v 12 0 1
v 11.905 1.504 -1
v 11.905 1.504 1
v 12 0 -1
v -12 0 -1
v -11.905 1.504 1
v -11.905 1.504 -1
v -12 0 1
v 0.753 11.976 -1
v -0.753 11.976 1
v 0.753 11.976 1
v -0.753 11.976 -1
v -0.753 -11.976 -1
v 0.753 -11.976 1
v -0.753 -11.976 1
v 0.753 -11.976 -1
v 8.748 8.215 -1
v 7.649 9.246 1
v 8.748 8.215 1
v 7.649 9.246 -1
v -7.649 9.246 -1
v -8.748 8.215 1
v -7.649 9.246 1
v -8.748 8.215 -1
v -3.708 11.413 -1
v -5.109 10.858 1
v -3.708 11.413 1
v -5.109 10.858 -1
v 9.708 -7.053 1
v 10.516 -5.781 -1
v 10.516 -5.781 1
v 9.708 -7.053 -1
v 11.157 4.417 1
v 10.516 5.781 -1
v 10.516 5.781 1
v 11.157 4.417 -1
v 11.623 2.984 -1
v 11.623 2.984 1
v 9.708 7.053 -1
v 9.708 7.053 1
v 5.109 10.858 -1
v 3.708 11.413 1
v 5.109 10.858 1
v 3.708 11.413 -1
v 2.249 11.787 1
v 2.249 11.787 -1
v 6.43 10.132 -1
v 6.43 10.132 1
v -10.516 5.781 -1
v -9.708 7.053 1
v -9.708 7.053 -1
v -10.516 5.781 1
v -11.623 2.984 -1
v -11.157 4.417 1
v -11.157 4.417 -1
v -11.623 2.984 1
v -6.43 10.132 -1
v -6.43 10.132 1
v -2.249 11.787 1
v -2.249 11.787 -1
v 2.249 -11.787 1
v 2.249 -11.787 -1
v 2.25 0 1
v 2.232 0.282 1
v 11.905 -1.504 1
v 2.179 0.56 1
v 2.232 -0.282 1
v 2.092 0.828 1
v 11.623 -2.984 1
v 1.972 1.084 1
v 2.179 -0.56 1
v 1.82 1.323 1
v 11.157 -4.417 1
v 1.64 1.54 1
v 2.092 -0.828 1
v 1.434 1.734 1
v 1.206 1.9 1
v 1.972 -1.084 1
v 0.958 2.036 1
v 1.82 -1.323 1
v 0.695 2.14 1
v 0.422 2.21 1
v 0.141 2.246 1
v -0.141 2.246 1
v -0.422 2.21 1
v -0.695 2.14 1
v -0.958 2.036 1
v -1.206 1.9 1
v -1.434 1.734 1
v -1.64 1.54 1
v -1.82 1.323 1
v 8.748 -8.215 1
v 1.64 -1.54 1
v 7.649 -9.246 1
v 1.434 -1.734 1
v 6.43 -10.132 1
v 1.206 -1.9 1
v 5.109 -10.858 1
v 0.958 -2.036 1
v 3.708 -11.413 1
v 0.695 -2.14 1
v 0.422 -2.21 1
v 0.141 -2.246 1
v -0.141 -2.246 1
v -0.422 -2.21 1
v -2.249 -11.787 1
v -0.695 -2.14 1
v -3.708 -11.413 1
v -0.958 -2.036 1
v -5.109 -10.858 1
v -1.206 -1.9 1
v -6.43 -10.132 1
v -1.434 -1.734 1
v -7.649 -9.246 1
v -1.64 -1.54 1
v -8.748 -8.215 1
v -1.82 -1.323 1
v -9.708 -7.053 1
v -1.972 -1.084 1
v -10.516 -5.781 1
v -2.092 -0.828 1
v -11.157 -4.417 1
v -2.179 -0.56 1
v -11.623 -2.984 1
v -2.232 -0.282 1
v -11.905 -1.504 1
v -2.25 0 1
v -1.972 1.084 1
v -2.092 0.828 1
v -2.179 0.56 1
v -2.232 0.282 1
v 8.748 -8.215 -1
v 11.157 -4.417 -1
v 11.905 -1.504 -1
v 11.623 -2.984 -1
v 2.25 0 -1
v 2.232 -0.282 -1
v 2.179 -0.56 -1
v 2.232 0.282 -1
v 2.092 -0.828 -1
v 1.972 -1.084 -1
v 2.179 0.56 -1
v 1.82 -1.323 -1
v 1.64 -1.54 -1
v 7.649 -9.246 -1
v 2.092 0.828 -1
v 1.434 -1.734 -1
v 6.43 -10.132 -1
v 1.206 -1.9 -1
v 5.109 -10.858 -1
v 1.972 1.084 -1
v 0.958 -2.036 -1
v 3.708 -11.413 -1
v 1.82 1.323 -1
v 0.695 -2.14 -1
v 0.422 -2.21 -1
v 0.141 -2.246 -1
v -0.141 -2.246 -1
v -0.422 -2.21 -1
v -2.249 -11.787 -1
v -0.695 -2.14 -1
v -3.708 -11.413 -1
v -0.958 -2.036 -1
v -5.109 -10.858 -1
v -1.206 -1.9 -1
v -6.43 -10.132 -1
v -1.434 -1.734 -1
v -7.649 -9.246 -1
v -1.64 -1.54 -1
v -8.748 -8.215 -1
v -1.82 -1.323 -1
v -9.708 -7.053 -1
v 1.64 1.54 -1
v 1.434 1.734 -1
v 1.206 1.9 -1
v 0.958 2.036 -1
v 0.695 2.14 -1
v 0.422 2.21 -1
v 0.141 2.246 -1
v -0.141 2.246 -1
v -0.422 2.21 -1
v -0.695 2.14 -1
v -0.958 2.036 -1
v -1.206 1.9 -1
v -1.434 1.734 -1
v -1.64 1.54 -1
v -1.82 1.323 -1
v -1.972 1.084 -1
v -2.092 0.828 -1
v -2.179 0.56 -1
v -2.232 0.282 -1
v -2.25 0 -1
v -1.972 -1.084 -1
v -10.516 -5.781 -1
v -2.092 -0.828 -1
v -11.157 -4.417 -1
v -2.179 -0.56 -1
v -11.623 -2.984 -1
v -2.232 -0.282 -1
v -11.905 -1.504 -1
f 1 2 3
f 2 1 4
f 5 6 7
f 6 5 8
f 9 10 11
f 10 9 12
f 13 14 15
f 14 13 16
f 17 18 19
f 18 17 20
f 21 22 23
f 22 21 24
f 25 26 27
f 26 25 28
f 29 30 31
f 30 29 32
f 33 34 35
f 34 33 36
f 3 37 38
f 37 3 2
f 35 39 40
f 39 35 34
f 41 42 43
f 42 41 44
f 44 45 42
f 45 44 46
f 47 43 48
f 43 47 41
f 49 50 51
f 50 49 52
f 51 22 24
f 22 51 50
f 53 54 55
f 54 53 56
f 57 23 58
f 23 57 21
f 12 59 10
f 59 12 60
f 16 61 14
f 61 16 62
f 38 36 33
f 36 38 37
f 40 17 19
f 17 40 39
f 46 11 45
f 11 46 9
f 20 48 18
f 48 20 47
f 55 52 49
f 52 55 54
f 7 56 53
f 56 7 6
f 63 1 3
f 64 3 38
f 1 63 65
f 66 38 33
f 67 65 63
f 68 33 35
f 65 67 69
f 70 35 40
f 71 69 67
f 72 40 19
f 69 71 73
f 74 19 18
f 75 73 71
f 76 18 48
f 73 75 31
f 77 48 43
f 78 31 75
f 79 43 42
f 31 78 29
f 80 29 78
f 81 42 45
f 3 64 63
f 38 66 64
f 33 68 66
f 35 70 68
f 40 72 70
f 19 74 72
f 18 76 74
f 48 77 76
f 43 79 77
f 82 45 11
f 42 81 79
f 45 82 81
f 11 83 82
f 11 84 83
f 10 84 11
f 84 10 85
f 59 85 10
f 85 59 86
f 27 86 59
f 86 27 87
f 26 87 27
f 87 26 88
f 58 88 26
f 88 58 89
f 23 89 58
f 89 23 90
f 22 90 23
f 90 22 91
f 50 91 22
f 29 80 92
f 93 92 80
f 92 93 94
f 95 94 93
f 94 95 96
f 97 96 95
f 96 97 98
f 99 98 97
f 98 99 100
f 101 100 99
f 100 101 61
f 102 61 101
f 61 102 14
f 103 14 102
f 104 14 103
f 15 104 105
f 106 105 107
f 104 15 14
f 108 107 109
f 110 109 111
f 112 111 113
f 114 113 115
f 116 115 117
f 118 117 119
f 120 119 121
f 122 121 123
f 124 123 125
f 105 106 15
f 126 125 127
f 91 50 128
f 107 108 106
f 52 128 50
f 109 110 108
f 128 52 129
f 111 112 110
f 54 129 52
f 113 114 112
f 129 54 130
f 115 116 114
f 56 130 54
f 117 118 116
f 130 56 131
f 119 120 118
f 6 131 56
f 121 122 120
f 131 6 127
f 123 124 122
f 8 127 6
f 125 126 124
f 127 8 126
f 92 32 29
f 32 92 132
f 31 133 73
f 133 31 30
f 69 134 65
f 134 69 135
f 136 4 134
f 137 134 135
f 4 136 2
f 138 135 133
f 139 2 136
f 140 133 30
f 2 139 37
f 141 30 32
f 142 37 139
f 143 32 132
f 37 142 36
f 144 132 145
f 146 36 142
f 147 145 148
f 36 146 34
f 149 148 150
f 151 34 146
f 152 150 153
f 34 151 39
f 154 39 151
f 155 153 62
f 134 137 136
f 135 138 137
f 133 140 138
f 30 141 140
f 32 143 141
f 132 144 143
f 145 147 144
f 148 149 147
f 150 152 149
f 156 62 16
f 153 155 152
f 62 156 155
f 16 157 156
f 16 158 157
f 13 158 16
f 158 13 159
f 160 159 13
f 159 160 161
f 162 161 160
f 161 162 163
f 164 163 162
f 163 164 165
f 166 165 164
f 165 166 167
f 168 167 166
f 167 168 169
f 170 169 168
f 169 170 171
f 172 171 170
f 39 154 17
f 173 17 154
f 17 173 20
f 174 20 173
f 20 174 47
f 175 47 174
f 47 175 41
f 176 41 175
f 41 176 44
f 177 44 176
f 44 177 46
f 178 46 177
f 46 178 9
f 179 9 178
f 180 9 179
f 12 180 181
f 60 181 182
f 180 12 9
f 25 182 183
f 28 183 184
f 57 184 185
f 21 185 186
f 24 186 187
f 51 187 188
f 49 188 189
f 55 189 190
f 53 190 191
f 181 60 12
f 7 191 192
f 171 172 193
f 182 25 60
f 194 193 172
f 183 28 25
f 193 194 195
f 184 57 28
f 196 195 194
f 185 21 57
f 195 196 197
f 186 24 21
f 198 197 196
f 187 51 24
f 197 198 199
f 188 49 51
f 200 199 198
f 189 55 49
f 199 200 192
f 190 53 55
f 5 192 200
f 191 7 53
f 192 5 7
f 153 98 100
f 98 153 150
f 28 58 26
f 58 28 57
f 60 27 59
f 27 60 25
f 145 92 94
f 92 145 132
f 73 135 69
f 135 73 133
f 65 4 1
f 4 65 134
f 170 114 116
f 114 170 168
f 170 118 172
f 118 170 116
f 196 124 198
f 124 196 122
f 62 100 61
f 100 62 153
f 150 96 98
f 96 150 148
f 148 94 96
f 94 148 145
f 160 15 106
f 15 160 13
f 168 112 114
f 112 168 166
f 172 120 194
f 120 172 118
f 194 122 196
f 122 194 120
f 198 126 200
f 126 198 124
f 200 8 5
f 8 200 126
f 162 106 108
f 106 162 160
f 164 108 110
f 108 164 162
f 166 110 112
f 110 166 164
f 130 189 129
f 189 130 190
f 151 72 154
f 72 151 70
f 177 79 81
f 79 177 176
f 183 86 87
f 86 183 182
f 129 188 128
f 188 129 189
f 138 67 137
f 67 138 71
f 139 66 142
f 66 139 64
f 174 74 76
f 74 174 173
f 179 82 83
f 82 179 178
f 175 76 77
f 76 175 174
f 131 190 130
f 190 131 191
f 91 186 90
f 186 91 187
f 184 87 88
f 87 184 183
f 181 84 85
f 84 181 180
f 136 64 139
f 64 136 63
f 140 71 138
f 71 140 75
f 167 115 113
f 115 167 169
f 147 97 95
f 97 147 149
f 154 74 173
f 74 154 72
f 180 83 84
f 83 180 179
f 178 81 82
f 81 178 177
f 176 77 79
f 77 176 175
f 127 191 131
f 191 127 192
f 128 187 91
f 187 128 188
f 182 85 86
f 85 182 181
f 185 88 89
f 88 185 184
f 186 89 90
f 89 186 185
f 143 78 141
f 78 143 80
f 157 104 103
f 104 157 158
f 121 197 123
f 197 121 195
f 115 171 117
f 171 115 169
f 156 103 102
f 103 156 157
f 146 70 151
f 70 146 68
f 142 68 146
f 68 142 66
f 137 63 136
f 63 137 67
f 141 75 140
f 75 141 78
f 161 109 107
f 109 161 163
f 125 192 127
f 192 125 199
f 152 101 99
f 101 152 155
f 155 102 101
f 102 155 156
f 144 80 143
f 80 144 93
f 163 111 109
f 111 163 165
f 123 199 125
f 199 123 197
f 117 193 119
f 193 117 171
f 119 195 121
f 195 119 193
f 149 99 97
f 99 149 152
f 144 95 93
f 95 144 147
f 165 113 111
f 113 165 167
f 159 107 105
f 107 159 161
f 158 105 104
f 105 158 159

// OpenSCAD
$fn = 50;


difference() {
	union() {
		translate(v = [0, 0, -1.0000000000]) {
			cylinder(h = 2, r = 12.0000000000);
		}
	}
	union() {
		translate(v = [0, 0, -100.0000000000]) {
			cylinder(h = 200, r = 2.2500000000);
		}
	}
}
